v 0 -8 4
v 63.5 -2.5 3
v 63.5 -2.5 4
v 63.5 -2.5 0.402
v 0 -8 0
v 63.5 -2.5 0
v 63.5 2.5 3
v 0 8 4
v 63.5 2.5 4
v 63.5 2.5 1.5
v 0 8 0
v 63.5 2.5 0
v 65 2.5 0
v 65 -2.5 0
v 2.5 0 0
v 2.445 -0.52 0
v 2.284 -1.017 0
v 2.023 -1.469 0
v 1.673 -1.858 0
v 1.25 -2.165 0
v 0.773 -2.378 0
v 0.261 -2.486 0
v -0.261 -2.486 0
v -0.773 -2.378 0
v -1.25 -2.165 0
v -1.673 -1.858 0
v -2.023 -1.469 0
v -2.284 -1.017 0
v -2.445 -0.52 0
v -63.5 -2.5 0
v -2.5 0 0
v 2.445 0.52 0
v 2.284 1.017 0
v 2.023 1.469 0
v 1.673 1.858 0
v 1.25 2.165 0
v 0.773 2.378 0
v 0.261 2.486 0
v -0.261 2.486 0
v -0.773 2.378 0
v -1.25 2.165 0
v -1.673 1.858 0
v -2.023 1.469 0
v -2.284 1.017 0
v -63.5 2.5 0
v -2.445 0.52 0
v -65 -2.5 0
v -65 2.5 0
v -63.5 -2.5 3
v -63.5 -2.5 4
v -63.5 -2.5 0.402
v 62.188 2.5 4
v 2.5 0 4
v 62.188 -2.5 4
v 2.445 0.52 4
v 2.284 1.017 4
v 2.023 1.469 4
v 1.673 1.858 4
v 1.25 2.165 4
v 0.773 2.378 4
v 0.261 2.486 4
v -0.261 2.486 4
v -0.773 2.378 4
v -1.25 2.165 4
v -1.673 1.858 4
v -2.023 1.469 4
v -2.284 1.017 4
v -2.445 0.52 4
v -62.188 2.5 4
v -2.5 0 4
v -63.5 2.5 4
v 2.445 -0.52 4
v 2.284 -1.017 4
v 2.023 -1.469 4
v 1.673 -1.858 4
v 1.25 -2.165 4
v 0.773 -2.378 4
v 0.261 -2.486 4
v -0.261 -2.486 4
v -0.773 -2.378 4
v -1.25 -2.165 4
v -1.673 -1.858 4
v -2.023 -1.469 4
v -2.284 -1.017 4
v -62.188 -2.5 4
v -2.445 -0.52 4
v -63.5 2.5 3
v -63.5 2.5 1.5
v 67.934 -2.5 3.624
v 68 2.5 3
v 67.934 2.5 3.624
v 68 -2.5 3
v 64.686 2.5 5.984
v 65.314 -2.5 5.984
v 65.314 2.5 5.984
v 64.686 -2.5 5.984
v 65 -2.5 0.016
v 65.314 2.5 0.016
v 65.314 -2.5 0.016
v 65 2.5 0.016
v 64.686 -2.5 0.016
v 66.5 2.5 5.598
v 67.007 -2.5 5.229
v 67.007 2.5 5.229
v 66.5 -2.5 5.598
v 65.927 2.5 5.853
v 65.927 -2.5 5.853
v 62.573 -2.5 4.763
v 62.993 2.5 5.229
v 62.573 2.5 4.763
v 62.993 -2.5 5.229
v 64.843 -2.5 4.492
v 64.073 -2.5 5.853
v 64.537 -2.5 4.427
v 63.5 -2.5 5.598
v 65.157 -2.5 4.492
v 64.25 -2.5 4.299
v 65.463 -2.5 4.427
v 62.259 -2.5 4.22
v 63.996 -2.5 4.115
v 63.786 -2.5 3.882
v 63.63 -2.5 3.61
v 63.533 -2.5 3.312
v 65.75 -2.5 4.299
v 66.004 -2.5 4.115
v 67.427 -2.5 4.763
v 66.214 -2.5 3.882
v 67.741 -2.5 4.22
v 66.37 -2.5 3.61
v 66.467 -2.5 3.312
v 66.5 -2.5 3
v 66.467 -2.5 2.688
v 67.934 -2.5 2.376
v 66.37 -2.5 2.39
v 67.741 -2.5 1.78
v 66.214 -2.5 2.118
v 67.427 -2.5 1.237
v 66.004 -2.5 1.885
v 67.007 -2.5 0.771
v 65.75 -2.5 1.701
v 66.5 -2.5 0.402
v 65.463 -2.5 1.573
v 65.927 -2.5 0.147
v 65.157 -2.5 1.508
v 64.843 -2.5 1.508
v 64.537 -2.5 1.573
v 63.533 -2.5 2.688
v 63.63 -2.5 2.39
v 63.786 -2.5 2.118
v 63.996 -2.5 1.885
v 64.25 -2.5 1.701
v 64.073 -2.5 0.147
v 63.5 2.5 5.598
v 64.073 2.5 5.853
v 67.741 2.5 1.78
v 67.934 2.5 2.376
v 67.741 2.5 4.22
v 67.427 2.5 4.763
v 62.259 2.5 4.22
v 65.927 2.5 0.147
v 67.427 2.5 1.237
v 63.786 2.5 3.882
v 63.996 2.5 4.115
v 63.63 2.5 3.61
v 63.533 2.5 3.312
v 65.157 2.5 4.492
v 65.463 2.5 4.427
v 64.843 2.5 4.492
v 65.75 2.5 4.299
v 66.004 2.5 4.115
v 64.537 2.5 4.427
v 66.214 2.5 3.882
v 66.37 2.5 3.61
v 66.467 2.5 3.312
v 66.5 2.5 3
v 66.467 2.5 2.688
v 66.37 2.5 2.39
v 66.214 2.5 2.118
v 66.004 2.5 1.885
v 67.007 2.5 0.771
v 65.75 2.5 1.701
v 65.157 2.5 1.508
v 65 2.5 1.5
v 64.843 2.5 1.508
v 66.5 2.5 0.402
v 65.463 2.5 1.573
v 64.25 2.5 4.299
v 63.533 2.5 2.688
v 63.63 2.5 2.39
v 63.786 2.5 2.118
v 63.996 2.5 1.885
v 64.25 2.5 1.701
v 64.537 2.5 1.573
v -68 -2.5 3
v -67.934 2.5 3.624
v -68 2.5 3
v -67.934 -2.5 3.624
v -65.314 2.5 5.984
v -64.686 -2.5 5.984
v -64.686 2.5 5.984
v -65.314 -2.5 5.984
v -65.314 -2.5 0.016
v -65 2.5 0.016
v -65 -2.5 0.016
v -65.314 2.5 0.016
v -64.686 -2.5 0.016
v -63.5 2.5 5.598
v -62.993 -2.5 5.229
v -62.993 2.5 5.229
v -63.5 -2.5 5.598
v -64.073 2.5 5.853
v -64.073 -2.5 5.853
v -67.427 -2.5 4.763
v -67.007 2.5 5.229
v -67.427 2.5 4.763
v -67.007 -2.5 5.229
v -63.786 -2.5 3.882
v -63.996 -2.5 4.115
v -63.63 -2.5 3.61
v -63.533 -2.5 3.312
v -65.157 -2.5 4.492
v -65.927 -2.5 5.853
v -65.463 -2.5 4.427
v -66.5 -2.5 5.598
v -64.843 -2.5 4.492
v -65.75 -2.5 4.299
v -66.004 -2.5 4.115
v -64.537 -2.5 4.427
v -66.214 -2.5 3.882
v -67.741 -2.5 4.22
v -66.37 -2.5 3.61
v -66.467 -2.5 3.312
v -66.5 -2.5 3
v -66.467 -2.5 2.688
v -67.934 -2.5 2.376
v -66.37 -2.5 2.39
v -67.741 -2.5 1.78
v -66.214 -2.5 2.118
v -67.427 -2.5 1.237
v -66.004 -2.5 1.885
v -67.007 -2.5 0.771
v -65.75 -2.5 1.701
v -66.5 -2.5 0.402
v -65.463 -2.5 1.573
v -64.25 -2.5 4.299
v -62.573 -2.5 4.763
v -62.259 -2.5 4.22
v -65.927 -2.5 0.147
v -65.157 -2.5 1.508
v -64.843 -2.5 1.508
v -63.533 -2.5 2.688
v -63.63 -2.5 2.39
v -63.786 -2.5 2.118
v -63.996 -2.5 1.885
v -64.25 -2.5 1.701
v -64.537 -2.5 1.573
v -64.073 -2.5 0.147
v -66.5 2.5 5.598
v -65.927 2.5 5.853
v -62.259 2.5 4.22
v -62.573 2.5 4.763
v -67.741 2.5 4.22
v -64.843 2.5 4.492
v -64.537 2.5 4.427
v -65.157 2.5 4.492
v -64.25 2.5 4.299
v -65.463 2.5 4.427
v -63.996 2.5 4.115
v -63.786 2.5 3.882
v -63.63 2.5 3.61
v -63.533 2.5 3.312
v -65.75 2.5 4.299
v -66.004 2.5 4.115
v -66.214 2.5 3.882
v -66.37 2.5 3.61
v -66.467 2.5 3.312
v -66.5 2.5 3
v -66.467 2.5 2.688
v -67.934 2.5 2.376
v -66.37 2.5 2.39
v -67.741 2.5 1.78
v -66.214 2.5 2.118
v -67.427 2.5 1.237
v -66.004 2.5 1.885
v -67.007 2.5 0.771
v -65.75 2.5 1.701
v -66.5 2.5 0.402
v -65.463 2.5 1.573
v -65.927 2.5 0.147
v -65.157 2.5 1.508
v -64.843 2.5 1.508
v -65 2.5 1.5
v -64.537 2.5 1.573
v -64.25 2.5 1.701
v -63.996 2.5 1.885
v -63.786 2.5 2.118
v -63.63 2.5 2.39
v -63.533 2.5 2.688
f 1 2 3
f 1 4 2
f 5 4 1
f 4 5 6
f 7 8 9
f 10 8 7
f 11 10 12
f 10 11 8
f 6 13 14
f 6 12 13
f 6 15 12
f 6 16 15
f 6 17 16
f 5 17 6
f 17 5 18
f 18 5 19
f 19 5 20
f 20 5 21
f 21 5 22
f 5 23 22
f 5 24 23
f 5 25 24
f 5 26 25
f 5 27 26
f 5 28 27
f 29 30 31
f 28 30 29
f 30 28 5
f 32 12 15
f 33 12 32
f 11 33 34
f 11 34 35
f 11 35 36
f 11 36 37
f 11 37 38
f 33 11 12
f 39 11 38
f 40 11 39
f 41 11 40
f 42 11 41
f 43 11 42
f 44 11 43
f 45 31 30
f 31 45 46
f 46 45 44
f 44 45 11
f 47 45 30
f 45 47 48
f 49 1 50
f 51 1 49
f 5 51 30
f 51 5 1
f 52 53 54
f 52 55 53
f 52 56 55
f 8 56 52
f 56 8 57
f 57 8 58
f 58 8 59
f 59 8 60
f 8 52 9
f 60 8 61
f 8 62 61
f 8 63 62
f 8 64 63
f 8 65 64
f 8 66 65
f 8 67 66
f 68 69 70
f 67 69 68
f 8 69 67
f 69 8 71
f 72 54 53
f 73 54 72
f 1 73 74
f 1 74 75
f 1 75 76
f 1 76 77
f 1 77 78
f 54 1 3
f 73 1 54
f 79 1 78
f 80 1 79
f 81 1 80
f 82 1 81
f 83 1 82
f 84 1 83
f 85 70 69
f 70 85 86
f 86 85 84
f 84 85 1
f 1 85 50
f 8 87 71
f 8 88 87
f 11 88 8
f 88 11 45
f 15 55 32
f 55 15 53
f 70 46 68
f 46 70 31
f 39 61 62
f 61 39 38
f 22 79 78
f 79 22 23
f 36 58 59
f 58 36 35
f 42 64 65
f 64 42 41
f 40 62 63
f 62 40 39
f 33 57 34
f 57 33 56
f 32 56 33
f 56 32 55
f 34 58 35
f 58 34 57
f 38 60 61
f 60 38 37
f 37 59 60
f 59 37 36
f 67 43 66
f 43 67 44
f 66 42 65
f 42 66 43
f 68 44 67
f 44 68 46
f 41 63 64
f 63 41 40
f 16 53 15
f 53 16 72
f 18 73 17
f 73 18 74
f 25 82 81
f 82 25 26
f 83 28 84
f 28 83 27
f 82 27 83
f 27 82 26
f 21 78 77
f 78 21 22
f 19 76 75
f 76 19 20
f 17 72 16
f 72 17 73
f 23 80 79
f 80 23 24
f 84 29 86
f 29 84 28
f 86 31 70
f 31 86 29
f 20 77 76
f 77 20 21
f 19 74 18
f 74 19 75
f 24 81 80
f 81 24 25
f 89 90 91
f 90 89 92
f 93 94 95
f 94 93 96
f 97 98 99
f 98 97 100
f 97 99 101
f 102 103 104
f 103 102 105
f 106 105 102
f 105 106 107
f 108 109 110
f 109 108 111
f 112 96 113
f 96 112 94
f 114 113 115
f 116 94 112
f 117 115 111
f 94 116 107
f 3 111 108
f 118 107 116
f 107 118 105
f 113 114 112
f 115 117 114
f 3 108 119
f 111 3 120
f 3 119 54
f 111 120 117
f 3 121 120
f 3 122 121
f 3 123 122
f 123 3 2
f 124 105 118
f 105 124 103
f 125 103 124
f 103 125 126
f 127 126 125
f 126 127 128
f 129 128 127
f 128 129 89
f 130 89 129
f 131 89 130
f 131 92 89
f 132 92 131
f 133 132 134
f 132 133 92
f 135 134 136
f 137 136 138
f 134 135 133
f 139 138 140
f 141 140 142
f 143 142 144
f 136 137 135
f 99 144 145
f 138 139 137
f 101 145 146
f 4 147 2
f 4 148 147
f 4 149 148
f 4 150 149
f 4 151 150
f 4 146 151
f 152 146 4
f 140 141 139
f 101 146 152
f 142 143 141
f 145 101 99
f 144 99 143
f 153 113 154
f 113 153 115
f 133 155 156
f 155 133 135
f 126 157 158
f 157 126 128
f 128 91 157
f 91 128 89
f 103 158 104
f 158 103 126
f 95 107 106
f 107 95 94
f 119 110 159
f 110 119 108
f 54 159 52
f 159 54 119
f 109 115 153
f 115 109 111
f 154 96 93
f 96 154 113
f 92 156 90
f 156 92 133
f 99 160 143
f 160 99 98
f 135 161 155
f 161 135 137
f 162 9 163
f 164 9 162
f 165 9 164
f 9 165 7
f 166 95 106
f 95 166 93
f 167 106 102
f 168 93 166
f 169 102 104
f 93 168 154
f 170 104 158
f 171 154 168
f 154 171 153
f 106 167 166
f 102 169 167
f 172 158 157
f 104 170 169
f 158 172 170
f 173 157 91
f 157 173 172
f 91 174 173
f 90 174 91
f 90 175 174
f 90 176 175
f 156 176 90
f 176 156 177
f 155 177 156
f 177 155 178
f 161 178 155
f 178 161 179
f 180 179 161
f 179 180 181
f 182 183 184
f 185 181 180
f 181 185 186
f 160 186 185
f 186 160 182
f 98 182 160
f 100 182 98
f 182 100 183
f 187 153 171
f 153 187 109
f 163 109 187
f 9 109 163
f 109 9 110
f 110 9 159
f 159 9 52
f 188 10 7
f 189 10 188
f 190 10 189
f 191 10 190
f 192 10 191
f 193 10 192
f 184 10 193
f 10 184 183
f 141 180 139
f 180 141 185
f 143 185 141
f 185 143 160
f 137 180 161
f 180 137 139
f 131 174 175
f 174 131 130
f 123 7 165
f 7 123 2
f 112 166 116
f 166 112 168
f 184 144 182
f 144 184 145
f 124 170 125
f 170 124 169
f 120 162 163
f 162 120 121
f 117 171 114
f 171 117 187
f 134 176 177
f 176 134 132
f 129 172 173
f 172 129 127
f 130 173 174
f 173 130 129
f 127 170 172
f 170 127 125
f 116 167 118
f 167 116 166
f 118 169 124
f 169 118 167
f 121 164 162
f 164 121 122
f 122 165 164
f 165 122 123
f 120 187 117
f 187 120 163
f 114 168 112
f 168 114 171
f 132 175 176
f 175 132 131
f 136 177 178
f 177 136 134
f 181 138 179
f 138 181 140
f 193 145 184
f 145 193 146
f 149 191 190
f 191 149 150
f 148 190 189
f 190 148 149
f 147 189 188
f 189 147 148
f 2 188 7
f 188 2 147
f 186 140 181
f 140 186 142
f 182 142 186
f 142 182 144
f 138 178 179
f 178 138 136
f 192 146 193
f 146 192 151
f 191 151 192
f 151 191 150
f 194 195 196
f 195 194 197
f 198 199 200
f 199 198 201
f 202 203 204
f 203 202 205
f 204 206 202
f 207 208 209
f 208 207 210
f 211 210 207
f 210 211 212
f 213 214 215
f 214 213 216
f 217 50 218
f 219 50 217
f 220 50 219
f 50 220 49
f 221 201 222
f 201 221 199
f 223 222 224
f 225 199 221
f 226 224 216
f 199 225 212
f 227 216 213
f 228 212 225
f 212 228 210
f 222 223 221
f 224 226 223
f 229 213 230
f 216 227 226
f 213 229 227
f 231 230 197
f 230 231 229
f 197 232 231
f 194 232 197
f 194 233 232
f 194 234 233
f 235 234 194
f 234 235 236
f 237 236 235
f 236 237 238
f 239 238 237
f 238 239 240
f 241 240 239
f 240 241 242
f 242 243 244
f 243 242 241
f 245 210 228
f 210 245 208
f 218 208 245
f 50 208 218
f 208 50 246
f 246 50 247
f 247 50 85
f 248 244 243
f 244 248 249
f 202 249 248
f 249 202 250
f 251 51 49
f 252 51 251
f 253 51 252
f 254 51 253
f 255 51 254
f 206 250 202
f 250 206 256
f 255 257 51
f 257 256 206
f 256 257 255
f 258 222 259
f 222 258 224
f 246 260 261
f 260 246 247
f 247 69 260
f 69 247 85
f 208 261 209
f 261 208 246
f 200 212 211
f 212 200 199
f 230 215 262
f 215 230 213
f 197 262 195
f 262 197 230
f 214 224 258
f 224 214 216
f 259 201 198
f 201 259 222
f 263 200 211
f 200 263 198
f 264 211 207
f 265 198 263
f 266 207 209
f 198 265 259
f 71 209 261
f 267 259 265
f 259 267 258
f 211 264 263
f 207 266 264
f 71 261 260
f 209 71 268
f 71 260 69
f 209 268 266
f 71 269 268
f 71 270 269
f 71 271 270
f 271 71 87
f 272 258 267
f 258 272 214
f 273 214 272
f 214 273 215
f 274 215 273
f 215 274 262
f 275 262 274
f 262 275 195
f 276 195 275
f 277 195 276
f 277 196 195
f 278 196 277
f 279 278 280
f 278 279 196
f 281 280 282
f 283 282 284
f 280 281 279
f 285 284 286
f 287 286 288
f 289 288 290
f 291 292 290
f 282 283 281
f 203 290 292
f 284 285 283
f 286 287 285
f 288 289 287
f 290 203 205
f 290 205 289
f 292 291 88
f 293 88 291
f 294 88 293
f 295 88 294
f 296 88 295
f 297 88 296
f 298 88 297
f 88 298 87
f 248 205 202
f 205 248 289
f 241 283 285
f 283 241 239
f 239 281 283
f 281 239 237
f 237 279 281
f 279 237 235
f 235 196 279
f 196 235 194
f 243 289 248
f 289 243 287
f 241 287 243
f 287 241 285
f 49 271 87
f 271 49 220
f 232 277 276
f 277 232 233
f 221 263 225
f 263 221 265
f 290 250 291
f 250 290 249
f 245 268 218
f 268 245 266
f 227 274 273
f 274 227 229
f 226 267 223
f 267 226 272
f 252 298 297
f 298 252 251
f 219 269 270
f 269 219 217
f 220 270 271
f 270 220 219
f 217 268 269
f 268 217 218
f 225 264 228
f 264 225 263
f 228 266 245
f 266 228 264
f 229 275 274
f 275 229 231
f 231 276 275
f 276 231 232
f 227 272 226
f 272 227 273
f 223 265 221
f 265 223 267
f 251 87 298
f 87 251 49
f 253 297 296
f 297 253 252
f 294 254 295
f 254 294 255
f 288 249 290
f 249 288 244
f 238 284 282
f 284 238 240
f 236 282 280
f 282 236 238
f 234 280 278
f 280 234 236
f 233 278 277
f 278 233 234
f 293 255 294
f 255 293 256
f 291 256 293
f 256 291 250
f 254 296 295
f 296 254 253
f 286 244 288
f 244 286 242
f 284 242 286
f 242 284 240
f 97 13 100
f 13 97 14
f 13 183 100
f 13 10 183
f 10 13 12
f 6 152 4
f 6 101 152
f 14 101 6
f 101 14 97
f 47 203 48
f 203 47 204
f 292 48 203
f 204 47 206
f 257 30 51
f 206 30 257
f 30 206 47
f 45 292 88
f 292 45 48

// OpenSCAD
$fn=30;

difference(){

linear_extrude(height=4)
polygon(
[[-63.5,2.5],
[0,8],
[63.5,2.5],
[63.5,-2.5],
[0,-8],
[-63.5,-2.5]]);

cylinder(d=5,h=10,center=true);
}

translate([65,0,3])rotate([90,0,0])
difference(){
cylinder(d=6,h=5,center=true);
cylinder(d=3,h=7,center=true);
}

translate([-65,0,3])rotate([90,0,0])
difference(){
cylinder(d=6,h=5,center=true);
cylinder(d=3,h=7,center=true);
}

translate([60,-2.5,0])
cube([5,5,1.5]);

translate([-65,-2.5,0])
cube([5,5,1.5]);
